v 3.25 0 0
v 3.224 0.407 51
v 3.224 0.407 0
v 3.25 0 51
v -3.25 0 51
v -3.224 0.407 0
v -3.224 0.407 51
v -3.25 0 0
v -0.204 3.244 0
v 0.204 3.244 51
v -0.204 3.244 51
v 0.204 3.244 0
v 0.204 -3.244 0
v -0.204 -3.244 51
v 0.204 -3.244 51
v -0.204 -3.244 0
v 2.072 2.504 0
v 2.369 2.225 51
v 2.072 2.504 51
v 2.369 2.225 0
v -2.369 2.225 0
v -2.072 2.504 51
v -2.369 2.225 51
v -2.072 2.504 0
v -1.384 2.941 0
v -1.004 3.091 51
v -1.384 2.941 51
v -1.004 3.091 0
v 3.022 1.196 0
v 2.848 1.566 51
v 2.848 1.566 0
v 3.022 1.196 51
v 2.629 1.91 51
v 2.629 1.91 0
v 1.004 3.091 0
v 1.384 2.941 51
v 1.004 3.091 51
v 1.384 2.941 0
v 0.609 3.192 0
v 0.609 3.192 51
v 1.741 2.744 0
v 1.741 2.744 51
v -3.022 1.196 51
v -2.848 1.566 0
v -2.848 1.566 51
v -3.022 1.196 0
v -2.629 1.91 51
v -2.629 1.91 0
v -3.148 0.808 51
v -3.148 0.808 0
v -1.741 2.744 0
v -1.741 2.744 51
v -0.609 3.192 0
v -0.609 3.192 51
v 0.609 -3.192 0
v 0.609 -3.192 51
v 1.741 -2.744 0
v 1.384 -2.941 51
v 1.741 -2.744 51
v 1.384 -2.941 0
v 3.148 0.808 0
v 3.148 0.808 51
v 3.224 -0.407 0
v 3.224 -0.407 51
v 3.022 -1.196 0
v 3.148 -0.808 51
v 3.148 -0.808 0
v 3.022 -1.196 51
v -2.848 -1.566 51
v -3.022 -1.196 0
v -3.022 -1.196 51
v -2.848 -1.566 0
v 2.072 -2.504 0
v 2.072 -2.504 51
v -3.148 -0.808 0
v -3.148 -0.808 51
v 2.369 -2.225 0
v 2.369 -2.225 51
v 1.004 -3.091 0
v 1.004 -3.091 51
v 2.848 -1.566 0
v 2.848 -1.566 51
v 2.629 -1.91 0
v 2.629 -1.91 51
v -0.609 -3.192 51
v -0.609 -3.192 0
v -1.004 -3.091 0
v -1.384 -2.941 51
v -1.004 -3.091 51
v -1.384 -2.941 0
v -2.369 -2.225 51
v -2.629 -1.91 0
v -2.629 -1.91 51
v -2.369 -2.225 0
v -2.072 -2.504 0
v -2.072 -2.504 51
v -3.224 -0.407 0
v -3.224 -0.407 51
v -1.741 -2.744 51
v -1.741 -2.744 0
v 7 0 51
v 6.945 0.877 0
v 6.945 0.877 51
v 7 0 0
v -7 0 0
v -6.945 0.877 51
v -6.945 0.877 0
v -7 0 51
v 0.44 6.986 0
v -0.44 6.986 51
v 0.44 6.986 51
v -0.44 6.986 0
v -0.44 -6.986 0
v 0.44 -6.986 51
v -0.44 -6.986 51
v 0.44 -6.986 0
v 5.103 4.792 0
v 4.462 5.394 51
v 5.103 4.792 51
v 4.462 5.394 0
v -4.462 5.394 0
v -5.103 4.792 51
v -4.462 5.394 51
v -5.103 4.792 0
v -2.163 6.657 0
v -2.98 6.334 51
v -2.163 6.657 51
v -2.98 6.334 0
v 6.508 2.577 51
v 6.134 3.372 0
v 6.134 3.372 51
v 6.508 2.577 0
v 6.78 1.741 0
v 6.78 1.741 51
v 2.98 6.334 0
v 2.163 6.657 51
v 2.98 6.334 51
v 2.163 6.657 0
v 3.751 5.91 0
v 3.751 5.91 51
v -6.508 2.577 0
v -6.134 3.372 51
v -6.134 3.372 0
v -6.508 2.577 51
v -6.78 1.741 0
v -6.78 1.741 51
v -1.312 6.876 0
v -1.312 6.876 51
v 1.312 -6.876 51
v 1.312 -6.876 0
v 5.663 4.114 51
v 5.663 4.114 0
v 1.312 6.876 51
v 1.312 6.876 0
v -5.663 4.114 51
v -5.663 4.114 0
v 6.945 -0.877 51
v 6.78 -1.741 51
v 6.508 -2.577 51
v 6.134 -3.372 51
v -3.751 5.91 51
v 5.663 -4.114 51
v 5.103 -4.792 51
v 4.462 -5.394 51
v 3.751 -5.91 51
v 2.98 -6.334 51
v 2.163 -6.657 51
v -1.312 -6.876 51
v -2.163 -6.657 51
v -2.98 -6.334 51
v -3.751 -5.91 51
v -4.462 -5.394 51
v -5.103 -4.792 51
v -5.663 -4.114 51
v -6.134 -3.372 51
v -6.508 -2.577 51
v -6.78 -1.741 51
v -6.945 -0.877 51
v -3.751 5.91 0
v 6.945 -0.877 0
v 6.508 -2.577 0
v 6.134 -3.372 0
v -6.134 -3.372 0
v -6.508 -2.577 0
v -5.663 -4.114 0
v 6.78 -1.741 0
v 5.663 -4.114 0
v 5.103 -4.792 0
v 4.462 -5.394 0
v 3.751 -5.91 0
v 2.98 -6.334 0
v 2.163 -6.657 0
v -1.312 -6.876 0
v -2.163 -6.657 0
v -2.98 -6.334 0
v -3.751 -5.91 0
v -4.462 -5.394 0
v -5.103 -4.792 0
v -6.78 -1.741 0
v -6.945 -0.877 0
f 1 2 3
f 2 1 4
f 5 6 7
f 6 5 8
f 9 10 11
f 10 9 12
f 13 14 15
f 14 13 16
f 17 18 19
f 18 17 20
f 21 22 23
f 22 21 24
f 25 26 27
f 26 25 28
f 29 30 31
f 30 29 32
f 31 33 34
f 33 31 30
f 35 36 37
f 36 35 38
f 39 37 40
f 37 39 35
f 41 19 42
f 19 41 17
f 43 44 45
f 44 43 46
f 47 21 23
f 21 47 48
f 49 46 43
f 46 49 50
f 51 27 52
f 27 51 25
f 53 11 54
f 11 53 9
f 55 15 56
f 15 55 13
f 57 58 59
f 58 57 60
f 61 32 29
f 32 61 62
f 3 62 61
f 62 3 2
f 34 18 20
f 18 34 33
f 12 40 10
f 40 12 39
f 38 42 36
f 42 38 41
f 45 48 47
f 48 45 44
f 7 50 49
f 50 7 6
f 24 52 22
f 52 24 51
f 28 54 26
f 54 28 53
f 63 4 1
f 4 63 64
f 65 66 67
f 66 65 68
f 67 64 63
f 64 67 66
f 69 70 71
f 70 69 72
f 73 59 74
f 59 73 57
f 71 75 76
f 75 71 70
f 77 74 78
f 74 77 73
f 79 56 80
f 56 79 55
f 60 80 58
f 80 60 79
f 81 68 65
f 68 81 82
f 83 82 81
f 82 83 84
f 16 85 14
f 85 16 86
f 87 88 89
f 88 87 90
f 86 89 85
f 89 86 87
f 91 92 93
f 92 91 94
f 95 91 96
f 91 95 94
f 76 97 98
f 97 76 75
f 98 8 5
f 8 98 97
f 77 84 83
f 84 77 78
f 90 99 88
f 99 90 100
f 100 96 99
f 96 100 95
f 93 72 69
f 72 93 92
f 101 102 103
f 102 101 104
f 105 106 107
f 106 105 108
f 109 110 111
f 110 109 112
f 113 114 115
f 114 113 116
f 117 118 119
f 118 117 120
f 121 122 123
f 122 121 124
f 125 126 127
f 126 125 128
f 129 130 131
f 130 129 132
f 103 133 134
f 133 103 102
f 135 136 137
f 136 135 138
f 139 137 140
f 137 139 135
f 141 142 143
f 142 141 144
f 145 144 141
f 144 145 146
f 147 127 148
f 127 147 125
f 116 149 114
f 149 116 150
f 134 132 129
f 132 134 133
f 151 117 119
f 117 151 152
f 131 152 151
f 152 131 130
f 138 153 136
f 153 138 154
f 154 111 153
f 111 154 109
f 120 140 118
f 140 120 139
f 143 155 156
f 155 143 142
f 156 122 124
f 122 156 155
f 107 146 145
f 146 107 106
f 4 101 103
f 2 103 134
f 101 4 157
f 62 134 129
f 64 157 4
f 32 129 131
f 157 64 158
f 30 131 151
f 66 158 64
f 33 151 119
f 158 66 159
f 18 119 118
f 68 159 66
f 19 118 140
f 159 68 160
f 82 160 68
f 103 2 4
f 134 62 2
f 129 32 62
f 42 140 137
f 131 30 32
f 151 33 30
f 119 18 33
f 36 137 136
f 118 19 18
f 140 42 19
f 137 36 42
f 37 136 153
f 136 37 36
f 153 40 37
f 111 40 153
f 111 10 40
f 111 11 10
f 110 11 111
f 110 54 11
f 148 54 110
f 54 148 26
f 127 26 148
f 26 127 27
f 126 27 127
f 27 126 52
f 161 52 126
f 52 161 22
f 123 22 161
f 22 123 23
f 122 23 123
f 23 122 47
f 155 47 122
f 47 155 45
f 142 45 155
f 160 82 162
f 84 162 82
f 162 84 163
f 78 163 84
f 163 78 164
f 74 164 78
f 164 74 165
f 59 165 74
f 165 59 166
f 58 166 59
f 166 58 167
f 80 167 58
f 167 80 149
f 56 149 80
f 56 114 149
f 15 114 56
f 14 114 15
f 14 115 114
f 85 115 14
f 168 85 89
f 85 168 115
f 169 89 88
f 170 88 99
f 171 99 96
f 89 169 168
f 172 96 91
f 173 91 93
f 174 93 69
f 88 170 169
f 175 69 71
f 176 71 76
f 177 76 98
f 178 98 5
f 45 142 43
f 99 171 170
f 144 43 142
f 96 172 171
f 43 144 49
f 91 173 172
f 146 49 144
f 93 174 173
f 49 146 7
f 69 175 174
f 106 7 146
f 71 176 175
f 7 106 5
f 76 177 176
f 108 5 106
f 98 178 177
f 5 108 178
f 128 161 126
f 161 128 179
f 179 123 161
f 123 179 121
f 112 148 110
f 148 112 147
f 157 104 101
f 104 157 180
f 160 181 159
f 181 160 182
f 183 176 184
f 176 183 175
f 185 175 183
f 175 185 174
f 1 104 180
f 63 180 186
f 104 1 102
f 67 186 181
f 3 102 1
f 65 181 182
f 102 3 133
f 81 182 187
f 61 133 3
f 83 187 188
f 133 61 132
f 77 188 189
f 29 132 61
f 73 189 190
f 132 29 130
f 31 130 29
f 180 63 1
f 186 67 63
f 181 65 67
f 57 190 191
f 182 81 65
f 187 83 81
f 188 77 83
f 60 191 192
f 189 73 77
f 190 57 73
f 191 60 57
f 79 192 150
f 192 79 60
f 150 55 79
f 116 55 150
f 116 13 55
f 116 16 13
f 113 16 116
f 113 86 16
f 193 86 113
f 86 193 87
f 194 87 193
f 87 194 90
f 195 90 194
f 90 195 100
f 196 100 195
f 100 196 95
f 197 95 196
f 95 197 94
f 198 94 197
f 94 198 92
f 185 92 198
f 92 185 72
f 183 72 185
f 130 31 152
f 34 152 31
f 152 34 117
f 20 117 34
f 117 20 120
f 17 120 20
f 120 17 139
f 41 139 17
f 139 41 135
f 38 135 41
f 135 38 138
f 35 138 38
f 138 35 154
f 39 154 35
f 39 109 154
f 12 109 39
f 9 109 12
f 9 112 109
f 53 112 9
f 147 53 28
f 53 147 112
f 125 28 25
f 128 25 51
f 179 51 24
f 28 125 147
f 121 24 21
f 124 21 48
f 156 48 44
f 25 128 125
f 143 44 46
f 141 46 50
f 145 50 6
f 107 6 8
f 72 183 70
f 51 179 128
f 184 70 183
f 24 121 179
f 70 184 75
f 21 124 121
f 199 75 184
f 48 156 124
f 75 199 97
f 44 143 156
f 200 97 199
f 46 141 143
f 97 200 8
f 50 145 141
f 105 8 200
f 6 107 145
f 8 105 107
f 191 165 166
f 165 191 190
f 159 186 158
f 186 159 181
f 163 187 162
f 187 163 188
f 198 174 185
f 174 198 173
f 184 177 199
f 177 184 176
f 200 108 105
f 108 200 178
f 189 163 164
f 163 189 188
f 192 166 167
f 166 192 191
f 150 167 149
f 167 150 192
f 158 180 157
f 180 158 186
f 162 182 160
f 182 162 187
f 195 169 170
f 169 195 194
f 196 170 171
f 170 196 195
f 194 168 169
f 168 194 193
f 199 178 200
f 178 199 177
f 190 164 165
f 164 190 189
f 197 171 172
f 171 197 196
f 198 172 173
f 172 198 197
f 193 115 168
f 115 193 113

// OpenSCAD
$fn = 50;


difference() {
	union() {
		cylinder(h = 51, r = 7.0000000000);
	}
	union() {
		translate(v = [0.0000000000, 0.0000000000, -100.0000000000]) {
			cylinder(h = 200, r = 3.2500000000);
		}
		translate(v = [0.0000000000, 0.0000000000, -100.0000000000]) {
			cylinder(h = 200, r = 3.2500000000);
		}
		translate(v = [0.0000000000, 0.0000000000, -100.0000000000]) {
			cylinder(h = 200, r = 3.2500000000);
		}
		translate(v = [0.0000000000, 0.0000000000, -100.0000000000]) {
			cylinder(h = 200, r = 3.2500000000);
		}
	}
}
